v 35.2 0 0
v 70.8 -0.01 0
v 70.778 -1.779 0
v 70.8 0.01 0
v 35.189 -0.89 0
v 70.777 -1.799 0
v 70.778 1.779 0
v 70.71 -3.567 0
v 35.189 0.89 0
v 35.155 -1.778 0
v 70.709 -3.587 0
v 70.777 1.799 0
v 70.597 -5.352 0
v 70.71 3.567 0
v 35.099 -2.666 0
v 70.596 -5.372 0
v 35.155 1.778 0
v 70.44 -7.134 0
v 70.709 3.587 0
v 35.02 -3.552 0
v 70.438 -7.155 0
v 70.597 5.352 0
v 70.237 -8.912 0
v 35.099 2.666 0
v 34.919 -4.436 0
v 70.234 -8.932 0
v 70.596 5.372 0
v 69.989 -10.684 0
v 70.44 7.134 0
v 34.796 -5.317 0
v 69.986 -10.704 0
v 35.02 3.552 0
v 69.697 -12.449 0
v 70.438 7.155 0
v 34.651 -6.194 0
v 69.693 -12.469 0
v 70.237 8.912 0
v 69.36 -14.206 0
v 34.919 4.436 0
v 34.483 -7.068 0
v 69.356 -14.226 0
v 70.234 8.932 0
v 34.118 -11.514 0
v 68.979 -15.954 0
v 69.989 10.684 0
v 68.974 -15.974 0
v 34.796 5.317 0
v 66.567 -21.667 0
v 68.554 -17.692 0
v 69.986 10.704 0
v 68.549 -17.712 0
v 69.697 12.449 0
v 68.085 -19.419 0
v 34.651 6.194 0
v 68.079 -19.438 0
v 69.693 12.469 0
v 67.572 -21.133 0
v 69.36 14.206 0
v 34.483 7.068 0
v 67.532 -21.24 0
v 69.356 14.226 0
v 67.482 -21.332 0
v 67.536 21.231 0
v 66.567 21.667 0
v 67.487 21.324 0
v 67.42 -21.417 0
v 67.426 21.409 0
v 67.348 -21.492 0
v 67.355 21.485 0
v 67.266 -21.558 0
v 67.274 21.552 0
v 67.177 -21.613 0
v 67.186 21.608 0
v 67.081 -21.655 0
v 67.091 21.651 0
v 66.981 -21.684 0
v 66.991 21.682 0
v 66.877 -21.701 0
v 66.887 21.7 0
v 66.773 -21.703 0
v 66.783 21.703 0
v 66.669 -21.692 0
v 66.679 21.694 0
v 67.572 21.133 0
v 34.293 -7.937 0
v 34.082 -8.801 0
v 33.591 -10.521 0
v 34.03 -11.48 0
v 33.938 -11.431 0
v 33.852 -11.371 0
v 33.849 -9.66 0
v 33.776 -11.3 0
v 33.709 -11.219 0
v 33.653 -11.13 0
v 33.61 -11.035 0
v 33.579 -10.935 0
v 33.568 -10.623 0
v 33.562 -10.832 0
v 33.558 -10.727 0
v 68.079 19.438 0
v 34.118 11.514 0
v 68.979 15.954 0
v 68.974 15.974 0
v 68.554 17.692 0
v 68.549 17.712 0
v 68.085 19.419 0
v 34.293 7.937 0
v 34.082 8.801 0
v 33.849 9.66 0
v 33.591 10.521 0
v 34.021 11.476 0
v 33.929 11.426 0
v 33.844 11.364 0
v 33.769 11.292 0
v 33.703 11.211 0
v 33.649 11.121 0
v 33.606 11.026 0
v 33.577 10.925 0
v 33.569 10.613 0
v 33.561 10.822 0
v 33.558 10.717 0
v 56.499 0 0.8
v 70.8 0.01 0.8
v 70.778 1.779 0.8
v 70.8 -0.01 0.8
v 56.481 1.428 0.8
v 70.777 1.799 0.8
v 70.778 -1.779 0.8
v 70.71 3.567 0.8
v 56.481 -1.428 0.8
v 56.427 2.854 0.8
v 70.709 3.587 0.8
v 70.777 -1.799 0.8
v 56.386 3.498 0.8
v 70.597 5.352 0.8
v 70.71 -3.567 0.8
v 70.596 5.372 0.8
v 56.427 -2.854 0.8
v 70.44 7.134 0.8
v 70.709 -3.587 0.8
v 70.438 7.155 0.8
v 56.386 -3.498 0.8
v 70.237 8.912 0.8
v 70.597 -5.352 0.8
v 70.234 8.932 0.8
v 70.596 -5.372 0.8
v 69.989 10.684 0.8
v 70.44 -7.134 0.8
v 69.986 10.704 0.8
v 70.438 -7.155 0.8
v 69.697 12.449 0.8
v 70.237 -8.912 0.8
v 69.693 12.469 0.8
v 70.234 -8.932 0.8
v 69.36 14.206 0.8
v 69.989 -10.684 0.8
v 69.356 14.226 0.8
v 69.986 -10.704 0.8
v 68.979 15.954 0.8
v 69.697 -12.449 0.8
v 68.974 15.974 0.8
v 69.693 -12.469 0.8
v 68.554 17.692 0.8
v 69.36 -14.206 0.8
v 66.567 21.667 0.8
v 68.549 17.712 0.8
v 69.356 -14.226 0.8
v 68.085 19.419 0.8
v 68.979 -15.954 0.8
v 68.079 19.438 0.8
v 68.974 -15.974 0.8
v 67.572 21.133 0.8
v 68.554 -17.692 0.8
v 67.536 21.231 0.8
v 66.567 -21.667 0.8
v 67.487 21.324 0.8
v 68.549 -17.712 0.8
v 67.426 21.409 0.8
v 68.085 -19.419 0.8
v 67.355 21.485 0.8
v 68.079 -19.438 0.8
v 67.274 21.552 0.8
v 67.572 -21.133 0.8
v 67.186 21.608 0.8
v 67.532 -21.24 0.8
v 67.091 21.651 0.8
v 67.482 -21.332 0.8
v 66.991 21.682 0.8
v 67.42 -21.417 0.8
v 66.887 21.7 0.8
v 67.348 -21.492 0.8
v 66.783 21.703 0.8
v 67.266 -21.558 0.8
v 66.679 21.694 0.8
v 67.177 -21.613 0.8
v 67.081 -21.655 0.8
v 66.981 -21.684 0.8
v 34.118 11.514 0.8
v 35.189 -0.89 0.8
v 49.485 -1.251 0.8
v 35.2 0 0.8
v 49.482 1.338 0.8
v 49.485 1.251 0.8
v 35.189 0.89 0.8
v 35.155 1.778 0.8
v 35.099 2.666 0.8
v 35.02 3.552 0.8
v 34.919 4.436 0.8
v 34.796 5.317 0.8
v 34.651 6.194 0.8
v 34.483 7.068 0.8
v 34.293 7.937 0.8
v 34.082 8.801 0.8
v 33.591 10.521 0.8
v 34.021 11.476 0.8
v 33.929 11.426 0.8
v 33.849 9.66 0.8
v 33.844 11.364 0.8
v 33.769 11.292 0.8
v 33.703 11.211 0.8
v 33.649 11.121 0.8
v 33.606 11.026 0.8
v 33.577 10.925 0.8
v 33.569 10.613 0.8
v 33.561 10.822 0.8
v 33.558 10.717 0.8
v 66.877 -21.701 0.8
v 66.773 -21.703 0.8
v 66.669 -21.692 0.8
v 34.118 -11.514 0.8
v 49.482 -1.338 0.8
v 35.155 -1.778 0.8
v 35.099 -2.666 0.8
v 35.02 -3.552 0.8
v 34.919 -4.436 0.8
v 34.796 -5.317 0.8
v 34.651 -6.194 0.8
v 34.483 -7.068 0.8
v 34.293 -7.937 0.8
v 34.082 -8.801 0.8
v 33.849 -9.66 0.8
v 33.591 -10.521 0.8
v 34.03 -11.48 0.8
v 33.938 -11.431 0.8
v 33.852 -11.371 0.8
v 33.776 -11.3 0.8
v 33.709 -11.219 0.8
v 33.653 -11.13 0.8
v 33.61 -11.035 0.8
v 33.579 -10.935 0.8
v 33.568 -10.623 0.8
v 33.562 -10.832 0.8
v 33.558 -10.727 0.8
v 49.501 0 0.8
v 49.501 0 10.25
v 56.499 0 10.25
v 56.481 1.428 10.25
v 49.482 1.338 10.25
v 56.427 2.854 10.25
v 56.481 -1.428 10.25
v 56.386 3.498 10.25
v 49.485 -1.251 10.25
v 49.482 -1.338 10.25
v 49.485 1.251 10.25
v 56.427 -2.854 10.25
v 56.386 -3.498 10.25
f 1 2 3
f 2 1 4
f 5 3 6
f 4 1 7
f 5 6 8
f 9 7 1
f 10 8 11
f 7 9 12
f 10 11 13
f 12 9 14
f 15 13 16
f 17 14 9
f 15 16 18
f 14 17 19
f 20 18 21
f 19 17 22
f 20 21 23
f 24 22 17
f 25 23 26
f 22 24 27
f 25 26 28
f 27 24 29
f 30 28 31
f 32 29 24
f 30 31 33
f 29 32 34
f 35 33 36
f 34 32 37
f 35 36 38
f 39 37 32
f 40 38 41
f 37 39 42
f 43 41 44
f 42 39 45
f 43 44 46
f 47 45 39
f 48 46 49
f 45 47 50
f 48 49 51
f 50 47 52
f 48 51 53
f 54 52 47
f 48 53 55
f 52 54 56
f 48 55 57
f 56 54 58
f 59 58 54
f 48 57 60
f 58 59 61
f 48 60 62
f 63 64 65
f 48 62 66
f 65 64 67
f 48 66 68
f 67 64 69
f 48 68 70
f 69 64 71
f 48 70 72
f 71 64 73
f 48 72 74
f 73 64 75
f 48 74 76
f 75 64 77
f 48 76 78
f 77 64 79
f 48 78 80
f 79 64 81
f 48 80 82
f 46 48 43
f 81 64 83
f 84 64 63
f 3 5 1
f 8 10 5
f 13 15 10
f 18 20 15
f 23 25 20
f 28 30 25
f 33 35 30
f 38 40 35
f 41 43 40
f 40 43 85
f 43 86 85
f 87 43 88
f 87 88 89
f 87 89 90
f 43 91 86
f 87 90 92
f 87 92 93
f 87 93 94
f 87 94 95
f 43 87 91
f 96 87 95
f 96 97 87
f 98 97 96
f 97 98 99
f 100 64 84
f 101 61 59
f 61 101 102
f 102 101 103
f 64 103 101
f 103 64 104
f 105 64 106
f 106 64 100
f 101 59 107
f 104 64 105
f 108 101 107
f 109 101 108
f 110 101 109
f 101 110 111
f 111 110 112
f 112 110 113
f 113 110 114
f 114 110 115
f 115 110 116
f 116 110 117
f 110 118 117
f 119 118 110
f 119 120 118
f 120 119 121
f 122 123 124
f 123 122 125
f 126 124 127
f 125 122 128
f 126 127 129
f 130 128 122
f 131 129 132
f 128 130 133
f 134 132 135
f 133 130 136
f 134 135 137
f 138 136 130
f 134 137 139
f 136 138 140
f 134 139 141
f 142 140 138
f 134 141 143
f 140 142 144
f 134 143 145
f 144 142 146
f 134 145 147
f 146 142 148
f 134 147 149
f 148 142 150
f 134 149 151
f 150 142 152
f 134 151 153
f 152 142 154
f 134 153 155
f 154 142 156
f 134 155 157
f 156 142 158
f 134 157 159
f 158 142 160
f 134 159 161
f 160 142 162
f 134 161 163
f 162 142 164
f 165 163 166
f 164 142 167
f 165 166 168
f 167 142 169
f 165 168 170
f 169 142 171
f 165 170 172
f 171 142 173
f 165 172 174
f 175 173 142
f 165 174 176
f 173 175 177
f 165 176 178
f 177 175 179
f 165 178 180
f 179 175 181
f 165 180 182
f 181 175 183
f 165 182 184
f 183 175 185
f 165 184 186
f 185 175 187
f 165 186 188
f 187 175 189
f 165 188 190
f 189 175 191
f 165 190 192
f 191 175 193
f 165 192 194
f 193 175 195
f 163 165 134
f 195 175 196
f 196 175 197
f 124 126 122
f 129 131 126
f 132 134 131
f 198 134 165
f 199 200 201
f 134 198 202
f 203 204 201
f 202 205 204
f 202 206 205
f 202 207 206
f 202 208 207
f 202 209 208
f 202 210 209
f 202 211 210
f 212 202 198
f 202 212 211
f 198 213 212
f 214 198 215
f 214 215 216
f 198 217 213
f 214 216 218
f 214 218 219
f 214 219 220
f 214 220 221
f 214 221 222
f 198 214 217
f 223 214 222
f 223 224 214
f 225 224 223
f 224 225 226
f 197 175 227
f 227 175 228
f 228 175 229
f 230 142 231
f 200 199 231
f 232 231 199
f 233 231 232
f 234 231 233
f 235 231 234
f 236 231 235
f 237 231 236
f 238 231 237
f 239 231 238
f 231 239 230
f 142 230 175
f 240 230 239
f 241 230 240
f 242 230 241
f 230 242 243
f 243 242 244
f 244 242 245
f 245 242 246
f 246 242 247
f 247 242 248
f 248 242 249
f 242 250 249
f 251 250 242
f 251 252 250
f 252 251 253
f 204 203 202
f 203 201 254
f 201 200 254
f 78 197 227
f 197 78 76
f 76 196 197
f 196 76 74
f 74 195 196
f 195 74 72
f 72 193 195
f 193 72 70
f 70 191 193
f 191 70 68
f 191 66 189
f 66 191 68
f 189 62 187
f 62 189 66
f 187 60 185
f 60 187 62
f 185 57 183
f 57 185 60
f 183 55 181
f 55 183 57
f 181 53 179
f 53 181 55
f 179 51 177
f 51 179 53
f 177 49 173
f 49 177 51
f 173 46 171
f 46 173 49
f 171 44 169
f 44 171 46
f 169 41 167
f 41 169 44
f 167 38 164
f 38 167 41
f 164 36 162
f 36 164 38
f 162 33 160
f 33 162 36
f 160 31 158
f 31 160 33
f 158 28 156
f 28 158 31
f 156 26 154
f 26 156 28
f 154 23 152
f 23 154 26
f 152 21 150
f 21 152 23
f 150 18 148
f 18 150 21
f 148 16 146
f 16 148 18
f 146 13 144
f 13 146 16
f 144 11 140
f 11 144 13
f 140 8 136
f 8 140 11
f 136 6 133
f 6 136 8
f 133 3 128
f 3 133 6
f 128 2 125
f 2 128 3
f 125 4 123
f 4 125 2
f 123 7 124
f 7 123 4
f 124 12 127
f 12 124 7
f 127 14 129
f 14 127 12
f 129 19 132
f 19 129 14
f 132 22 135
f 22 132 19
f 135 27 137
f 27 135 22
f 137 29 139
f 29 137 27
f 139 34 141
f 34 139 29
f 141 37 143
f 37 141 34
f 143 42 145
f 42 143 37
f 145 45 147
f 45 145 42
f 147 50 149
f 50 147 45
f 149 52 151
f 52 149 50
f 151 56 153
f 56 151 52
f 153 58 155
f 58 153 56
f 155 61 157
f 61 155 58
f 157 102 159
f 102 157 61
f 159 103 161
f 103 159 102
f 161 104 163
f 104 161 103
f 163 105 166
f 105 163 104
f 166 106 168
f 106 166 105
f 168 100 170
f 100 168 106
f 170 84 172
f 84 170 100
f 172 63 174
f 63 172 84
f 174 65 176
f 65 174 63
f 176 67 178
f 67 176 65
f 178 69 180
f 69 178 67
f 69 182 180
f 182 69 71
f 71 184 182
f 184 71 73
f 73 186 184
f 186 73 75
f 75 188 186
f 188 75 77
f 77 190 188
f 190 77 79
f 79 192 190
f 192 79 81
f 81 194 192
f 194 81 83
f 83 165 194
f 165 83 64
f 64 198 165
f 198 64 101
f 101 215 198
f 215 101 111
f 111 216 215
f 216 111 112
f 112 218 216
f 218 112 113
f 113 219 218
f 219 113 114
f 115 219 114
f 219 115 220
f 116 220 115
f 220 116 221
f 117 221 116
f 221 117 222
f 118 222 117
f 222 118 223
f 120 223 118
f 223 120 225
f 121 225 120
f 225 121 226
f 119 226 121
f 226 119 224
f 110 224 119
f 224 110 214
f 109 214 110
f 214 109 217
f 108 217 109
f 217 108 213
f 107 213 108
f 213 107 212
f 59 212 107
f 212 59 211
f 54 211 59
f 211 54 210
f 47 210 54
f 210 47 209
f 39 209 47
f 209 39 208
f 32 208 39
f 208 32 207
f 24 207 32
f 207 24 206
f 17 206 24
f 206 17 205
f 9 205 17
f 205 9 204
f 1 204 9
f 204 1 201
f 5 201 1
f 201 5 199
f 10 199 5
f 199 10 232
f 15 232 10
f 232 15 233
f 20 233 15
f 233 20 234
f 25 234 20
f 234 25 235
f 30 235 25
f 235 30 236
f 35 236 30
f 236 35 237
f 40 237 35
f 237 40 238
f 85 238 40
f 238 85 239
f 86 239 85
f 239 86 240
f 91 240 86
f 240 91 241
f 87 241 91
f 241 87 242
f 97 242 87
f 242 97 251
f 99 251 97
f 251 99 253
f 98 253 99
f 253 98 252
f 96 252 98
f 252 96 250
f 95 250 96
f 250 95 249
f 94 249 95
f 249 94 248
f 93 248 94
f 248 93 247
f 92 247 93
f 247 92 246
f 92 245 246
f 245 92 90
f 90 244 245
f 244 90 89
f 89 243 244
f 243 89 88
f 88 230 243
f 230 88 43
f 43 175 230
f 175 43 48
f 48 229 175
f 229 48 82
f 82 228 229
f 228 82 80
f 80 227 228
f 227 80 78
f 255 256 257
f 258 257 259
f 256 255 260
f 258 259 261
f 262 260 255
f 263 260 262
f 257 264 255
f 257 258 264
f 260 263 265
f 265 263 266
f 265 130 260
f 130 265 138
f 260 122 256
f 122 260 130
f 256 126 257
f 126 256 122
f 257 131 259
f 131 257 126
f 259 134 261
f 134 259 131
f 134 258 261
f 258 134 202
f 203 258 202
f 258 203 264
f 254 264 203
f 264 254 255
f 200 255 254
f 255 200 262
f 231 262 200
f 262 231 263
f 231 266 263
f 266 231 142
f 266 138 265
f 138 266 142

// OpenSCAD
// file: parameters.scad
// =============================================================================
// Gen-BT — nightly 2026-10-09 (physics_scorer, honest magpylib watts)
// The low-cogging 8-pole / 9-coil line (winding factor 0.945) moved to a larger R53 pole ring with 36–70 mm bobbins and a 13.5 mm build, the best 9-coil row in tonight's scans (Gen-BQ was R52 / 35–70 / 12.6). Smoother to spin by hand and quieter, but still well below 6 coils under the wire budget.
// Clocking 0 deg (magnets N facing S) + D-flat keyed bore + index notch + flip-symmetric hole map.
// Windable 2-piece bobbin; turns = physics_scorer turns_fit; copper only between flanges.
// Steel back-iron: 2× Ø140 × 4.76 mm (3/16") mild-steel discs (steel_backiron_disc.dxf); magnets sit ON the steel
// (through-pockets) -> score with --back-iron.
// =============================================================================
topology            = "dual_rotor";

// --- Wire / winding (physics_scorer winding-fit) -------------------------------
wire_awg            = 26;
wire_od             = 0.45;     // insulated OD mm (bare 0.405)
fill_realistic      = 0.65;     // insulated-wire area / window (DENSE layered wind with a jig; scorer cap 0.65)
turns               = 521;       // = physics_scorer turns_fit (do NOT raise)
coil_former_type    = "bobbin";
coil_core_inset     = 13.50;     // radial copper build: hub = copper boundary inset by this
wind_build_axial    = 0.0;      // nothing proud of the flanges
wind_build_radial   = 0.0;

// --- Bobbin (base + lid) ---------------------------------------------------------
coil_id_r           = 36.00;    // copper boundary sector
coil_od_r           = 70.00;
span_deg            = 34.75;    // = pitch - 2*asin((wall+0.85)/coil_id_r) -> >=1.2 mm stator web
former_web          = 9.45;     // copper height between flanges (TALL copper: steel keeps Bz up)
flange_t            = 0.80;     // >= 0.8 mm FDM wall rule (tall winds push on the flanges)
wall                = 0.80;     // flange lip beyond copper
former_bare_h       = former_web + 2 * flange_t;
coil_envelope_h     = former_bare_h + 2 * wind_build_axial;
tab_w               = 7.0;
tab_len             = 7.0;
tab_h               = former_bare_h / 2;
pin_d               = 1.9;      // 1.75 mm filament locating pin
coil_mount_r        = coil_od_r + 0.2 + 4.0;
lead_y              = 1.6;
lead_slot_w         = 0.9;
lead_groove_d       = 0.6;

// --- Gap -------------------------------------------------------------------------
run_clear           = 0.50;     // rotor face -> flange
gap_spacer_h        = run_clear + wind_build_axial;
m2m                 = coil_envelope_h + 2 * run_clear;   // rotor face to rotor face (= gap_sleeve length)

// --- Stator ----------------------------------------------------------------------
coil_stations       = 9;
bay_clear           = 0.25;
stator_thick        = former_bare_h;                        // bobbins flush both faces
stator_od           = 162.0;
shaft_clear_stator  = 14.0;     // stator is static; gap sleeve OD 12 spins inside

// --- Rotor(s) --------------------------------------------------------------------
magnet_Br           = 1.43;     // N52
magnet_d_large      = 20.0;
magnet_h_large      = 5.0;      // one O20x5 per pocket
magnet_h_small      = 5.0;      // one O5x5 per pocket
halbach_magnetisation = "diametric"; // O5x5 assist magnets MUST be DIAMETRICALLY magnetised (tangential)
rotor_b_same_axis   = true;     // same-index magnets share one axis: N faces S across the gap
large_pocket_d      = 20.3;
small_pocket_d      = 5.3;
pocket_h            = 5.00;     // THROUGH the carrier: magnet back face sits on the steel disc (FLUSH seat: carrier = magnet height, magnet face level with the rotor face)
large_n             = 8;
R_large             = 53.0;
R_small_inner       = 45.0;
R_small_mid         = 53.0;
R_small_outer       = 61.0;
small_r_list        = [R_small_inner, R_small_mid, R_small_outer];   // O5 pockets between poles
carrier_od          = 140.0;
carrier_thick       = pocket_h;
hub_h               = 12.0;     // > steel_t + insert: radial set-screw clears the steel
hub_od              = 24.0;     // slim hub so the M4 brace rods fit at R~18 inside the coil ring
hub_insert_d        = 4.0;      // M3 heat-set insert, radial, bears on the D-flat
rotor_b_offset_deg  = 0.0;      // CLOCKING: magnets directly opposite
shaft_key           = "dflat";
dflat_depth         = 0.5;      // 8 mm shaft with 0.5 mm flat (7.5 across flat)
index_notch_d       = 3.0;

// --- Steel back-iron (buyable laser-cut) -------------------------------------------
steel_t             = 4.76;      // mild steel thickness (image method ignores it; sized from steel_flux.py so the return path stays well below saturation)
steel_center_hole   = 26.0;     // slips over the rotor hub (OD 24)
steel_od            = carrier_od;   // steel disc OD = rotor carrier OD

// --- Modular MAX interface ----------------------------------------------------------
shaft_bore          = 8.35;
dflat_x             = 4.0 - dflat_depth + (shaft_bore - 8.0) / 2;
bearing_d           = 21.85;
bearing_h           = 7.2;
m3_clear            = 3.5;
bolt_r_inner        = 30.0;     // M3 steel-disc clamp bolts (inside the magnet ring)
bolt_n_inner        = 4;
bolt_inner_angles   = [0, 90, 180, 270];
bolt_r_outer        = 66.0;     // M3 steel-disc clamp bolts (outside the magnet ring)
bolt_outer_angles   = [45, 135, 225, 315];
flange_bolt_r       = 76.0;     // frame rods: OUTSIDE the rotor OD (rotors spin inside them)
flange_bolt_n       = 9;
flange_bolt_offset  = 20.00;    // between coil stations -> never cuts a lead groove/tab
brace_r             = 18.0;
brace_d             = 4.3;      // temporary M4 jack rods (assembly only)
brace_n             = 4;
brace_angles        = [45, 135, 225, 315];          // flip-symmetric

spacer_pad_od       = 14.0;
spacer_pad_id       = m3_clear;
endbell_od          = 162.0;
endbell_thick       = 8.0;
endbell_shaft_clear = 10.0;
collar_h            = 10.0;
standoff_od         = 9.0;
frame_standoff_h    = run_clear + carrier_thick + hub_h + collar_h + 2.0;
sleeve_od           = 12.0;
plate_max_mm        = 410;

$fn = 64;
// main file
// Gen-BT — bobbin BASE (bottom flange + hub). Print x9, flange down. Wind 26 AWG x 521 t around
// the hub with the LID glued on (coil_lid.stl). Copper lives ONLY between the flanges (no proud winds).
include <parameters.scad>;
$fn = 48;
module sector_2d(r_in, r_out, ang) {
    polygon([
        for (a = [-ang/2 : ang/24 : ang/2]) [r_in*cos(a), r_in*sin(a)],
        for (a = [ang/2 : -ang/24 : -ang/2]) [r_out*cos(a), r_out*sin(a)]
    ]);
}
module footprint_2d() { offset(r=wall) sector_2d(coil_id_r, coil_od_r, span_deg); }
module hub_2d()       { offset(delta=-coil_core_inset) sector_2d(coil_id_r, coil_od_r, span_deg); }

union() {
    linear_extrude(flange_t) footprint_2d();
    translate([0, 0, flange_t - 0.01]) linear_extrude(former_web + 0.01) hub_2d();
}
